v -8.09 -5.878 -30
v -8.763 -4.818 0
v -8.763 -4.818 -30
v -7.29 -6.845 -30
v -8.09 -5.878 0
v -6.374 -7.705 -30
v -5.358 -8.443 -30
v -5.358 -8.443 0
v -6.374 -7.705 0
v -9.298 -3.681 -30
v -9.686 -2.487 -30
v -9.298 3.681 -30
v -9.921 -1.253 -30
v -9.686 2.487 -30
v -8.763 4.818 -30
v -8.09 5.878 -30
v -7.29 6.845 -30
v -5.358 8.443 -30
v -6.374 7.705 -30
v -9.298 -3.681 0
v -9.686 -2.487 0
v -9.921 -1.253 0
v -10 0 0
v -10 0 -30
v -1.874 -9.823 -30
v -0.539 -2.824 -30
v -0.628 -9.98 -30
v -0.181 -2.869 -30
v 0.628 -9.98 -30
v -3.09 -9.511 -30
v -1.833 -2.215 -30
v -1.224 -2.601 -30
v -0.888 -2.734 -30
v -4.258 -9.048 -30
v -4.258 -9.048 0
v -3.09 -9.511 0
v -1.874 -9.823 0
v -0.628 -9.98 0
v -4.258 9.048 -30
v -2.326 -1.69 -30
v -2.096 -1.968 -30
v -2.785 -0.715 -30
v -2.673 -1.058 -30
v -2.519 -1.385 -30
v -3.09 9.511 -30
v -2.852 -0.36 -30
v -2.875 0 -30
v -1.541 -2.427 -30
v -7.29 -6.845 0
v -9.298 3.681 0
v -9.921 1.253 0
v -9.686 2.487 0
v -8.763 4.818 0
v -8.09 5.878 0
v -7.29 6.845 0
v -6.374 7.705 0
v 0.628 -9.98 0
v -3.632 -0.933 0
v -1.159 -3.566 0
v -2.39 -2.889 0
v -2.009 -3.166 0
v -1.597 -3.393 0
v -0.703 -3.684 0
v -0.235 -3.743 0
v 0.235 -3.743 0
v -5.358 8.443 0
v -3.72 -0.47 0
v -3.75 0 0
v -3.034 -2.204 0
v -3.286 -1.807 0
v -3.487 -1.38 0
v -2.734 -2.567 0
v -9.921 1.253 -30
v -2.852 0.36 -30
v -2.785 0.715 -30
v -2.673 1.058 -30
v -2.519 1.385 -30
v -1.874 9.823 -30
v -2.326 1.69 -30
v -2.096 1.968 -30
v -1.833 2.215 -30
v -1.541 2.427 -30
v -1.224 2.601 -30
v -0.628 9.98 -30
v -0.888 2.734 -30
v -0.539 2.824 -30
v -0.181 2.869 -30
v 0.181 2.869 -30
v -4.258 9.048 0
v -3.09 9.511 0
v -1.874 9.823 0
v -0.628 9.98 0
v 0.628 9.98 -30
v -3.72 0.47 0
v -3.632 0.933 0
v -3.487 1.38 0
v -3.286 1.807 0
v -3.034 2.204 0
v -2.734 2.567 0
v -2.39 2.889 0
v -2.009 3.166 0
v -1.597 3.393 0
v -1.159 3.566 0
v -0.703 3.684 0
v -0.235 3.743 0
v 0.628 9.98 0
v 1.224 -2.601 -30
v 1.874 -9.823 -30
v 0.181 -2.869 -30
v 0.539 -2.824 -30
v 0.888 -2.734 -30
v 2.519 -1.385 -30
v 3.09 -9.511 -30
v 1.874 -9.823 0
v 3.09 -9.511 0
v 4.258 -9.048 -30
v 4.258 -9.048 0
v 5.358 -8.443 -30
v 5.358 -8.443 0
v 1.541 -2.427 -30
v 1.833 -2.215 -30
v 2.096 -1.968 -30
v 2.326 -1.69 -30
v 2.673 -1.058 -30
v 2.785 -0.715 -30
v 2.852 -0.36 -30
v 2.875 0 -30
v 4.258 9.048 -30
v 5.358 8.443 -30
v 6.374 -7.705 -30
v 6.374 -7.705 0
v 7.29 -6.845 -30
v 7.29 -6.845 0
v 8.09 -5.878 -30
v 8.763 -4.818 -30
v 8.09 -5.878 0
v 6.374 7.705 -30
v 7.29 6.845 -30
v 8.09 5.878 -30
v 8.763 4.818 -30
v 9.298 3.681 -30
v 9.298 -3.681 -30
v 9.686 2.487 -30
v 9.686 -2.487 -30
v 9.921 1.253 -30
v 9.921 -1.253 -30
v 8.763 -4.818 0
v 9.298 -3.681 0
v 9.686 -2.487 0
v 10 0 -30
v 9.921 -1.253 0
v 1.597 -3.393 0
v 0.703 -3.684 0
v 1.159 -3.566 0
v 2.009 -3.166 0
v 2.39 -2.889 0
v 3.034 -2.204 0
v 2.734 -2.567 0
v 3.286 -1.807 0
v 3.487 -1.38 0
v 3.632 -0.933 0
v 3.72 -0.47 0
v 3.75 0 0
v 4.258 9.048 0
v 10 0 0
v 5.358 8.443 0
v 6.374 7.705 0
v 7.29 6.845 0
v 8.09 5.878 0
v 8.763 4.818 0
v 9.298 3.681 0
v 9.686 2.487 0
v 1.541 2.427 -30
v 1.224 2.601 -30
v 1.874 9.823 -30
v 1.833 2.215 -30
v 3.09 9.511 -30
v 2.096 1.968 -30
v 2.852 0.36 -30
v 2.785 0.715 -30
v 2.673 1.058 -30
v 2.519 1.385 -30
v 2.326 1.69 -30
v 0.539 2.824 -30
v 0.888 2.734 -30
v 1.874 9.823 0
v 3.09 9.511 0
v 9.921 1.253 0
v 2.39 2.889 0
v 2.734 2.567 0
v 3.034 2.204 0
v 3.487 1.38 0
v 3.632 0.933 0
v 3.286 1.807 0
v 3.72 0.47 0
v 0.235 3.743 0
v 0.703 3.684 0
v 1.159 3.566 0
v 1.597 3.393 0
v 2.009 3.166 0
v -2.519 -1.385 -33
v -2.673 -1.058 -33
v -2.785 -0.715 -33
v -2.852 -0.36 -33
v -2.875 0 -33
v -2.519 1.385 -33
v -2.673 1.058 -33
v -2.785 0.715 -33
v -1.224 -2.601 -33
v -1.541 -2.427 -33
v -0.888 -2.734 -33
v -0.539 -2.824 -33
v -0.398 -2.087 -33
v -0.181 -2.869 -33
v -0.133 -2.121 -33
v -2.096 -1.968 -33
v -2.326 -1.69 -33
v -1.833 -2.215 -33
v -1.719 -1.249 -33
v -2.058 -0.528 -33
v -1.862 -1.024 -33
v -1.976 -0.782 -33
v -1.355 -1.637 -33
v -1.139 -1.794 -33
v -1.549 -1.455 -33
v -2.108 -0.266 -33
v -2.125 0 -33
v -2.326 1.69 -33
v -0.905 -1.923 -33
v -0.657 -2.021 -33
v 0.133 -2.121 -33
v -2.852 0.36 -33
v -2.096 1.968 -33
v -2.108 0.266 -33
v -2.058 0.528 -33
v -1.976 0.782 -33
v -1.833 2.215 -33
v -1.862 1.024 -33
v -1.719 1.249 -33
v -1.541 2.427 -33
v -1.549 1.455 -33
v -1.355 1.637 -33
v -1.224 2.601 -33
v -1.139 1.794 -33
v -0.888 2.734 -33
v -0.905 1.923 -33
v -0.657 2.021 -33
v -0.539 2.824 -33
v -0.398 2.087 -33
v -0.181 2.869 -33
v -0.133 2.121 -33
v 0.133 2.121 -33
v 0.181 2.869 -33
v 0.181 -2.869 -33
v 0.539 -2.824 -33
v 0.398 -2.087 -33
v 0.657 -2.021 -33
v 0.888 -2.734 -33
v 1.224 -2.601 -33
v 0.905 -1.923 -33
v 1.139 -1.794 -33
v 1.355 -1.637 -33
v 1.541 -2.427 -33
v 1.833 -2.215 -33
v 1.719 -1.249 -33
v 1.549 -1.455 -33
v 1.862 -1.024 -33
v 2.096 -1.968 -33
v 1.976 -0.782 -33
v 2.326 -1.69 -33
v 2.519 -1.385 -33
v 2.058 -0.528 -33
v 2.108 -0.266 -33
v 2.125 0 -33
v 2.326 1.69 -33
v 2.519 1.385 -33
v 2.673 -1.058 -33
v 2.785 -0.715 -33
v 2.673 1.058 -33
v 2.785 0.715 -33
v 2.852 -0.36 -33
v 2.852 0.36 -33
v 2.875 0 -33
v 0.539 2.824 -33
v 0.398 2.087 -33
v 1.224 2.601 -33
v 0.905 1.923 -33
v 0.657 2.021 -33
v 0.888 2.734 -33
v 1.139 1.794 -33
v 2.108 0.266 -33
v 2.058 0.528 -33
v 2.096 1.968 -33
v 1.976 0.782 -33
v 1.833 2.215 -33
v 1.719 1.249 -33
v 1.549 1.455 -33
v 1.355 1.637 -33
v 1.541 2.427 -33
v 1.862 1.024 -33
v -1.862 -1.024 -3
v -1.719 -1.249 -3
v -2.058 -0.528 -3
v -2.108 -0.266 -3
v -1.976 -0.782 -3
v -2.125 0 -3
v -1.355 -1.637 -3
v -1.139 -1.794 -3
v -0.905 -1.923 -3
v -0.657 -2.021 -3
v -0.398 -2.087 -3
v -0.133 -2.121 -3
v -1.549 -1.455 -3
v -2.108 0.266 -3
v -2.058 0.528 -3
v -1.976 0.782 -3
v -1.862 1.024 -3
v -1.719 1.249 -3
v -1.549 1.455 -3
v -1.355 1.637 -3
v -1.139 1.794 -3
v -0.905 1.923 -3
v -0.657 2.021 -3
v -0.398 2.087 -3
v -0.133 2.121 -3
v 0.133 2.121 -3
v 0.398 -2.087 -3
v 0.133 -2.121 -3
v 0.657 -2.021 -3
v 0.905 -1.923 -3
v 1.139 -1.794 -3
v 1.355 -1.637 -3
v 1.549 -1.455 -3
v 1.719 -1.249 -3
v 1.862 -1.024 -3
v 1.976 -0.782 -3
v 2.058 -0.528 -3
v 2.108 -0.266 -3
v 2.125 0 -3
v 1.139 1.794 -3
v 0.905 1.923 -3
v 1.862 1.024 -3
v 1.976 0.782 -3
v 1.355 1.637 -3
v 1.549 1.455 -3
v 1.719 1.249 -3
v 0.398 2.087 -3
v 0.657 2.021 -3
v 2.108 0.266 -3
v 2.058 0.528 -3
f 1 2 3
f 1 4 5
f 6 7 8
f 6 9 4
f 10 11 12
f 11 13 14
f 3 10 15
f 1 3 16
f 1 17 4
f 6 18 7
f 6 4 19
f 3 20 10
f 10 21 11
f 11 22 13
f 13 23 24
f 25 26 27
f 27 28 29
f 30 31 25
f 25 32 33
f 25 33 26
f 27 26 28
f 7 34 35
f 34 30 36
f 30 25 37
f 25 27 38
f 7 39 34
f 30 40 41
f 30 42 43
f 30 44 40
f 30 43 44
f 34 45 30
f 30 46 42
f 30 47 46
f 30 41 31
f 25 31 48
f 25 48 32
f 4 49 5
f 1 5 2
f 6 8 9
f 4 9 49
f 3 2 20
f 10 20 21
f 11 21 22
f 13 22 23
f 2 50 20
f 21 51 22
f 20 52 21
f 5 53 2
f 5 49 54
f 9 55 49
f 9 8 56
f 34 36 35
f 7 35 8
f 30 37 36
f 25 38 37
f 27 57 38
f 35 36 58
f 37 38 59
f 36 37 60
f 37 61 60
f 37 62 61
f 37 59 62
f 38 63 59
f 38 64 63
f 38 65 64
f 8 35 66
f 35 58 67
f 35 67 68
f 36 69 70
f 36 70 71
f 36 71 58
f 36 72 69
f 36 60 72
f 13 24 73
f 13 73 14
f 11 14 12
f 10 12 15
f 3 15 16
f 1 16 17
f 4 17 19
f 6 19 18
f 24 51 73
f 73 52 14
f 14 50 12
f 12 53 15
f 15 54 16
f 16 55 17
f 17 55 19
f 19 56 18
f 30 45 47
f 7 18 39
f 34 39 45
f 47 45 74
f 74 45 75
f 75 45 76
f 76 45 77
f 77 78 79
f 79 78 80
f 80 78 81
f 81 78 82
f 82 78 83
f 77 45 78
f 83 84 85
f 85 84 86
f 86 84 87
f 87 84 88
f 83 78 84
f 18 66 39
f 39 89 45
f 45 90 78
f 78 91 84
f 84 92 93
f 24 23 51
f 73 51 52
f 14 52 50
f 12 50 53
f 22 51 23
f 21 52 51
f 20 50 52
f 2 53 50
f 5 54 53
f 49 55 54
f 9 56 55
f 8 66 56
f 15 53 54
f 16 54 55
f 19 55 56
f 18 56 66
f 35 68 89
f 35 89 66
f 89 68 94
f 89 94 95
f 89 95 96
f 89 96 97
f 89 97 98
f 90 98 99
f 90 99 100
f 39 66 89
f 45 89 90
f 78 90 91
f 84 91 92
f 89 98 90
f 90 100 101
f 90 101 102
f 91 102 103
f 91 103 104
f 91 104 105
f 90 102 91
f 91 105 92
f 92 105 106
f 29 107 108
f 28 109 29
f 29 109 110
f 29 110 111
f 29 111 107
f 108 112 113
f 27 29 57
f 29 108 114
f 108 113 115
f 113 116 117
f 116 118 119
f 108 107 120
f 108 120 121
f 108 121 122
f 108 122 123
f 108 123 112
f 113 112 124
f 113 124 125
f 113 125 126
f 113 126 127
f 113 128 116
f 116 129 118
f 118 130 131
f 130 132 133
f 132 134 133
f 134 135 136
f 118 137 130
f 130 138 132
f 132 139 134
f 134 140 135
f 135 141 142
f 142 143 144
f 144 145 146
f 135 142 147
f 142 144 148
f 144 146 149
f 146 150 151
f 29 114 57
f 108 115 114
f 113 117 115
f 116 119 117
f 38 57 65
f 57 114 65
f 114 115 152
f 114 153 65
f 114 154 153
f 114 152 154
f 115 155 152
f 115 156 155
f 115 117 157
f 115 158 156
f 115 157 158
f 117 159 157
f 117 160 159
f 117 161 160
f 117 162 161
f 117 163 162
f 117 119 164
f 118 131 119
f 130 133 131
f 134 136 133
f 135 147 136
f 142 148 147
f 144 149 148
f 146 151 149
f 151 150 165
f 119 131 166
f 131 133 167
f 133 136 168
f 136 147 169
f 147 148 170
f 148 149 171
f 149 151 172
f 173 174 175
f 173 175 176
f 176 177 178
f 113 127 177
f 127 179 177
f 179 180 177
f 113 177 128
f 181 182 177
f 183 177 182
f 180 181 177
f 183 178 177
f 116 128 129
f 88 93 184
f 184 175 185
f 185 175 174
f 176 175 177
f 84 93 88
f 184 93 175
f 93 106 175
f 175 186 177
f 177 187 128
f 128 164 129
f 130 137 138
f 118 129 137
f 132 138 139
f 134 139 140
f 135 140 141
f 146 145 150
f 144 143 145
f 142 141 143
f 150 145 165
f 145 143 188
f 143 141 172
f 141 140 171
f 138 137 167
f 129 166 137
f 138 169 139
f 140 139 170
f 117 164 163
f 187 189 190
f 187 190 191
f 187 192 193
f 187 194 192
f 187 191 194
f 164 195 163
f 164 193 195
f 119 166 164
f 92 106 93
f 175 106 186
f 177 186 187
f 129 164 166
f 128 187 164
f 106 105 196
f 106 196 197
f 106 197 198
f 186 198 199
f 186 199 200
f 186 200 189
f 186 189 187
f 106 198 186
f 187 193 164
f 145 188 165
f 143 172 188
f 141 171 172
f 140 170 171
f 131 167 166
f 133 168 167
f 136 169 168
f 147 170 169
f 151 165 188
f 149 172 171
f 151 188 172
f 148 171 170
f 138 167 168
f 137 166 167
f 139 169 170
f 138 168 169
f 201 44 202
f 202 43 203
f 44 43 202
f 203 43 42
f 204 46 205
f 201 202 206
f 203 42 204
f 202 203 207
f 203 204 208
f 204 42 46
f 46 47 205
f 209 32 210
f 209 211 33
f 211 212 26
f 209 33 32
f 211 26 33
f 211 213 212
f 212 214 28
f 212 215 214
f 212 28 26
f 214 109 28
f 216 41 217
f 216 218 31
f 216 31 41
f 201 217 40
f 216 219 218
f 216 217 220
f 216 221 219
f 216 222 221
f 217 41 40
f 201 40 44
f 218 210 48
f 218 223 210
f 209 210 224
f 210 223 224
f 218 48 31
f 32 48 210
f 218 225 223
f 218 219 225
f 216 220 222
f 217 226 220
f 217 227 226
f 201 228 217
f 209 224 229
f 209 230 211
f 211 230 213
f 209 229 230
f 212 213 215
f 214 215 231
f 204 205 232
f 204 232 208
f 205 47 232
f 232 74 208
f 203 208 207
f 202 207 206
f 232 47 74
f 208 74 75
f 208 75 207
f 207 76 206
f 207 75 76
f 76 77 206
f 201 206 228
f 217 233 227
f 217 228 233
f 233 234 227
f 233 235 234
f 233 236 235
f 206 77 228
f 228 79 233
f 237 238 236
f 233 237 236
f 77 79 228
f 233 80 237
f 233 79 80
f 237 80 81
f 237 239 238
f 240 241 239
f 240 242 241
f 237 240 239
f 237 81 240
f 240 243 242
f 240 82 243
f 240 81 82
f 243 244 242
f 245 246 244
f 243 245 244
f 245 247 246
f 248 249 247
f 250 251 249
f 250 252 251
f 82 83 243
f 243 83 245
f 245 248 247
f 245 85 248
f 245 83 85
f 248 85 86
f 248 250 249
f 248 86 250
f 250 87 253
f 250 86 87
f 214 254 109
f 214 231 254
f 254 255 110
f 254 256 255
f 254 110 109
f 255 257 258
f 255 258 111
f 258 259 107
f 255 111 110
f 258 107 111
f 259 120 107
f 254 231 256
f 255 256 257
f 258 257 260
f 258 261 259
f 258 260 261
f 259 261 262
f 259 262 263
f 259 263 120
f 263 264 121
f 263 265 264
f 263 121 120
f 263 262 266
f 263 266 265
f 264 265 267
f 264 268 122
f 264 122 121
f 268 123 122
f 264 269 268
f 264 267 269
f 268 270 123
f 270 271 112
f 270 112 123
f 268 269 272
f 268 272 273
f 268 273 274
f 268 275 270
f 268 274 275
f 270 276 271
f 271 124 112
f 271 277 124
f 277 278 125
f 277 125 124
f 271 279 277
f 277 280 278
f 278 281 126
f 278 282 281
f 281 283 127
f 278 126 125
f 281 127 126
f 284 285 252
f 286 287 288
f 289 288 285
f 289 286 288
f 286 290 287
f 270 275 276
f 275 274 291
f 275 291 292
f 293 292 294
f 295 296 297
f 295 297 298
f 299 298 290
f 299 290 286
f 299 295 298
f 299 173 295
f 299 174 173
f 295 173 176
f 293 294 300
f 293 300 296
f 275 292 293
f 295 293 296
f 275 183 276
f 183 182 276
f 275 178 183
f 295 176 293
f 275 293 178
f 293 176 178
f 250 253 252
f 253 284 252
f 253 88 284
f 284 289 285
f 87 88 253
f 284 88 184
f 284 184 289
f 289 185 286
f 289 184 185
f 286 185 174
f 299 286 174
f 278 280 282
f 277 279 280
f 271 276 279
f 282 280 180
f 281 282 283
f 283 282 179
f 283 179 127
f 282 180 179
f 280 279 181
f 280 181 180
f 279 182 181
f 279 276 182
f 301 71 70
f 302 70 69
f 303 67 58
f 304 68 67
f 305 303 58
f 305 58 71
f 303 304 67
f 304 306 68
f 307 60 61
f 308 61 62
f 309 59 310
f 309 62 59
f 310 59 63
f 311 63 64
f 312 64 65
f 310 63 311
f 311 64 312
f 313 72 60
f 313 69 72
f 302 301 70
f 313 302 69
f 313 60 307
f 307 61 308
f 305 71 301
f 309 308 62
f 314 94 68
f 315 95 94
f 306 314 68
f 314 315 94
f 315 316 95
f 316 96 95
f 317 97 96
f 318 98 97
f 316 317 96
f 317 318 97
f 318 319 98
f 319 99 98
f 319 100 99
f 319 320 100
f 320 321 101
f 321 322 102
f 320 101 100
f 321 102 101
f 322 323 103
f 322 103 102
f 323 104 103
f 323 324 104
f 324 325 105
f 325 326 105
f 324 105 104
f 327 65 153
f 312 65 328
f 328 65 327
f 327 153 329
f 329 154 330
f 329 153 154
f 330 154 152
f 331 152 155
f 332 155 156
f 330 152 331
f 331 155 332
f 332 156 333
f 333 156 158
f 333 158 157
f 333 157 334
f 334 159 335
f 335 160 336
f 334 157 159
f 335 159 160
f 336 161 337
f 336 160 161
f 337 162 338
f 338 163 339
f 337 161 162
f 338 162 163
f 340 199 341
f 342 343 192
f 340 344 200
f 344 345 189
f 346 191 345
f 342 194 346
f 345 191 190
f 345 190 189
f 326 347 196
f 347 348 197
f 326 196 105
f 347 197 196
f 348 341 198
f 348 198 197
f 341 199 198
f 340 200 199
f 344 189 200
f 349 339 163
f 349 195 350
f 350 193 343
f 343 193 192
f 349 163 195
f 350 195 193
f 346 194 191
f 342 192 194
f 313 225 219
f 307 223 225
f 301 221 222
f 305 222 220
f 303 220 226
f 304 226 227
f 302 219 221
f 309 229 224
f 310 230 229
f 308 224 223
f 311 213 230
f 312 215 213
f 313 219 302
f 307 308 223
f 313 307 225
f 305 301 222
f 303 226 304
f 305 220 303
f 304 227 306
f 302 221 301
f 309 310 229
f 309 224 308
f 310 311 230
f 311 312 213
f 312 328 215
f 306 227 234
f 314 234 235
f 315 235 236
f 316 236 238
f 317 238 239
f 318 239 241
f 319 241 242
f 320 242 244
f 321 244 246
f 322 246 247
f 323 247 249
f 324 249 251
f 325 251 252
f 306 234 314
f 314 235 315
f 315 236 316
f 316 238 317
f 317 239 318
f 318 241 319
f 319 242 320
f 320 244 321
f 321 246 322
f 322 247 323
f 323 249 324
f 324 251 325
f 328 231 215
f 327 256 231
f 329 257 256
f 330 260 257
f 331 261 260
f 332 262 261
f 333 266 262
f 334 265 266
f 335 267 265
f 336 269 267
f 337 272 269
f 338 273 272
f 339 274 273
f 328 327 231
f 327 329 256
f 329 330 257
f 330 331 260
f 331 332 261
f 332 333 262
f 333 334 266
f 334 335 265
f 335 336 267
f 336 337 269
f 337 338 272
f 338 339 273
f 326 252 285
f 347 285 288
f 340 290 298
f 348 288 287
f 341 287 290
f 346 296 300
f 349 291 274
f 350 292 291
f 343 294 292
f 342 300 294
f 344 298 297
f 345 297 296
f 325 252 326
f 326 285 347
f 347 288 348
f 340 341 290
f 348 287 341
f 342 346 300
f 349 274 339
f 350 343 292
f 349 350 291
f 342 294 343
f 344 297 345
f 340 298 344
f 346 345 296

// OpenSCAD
$fn = 50;

difference() {
	union() {
		translate(v = [0, 0, -30.0]) {
			cylinder(h = 30, r = 10.0);
		}
		#translate(v = [0, 0, -33.0]) {
			cylinder(h = 33, r = 2.875);
		}
	}
	union() {
		translate(v = [0, 0, 0]) {
			rotate(a = [0, 0, 0]) {
				difference() {
					union() {
						translate(v = [0, 0, -33.0]) {
							cylinder(h = 33, r = 2.0);
						}
						translate(v = [0, 0, -3]) {
							cylinder(h = 3, r1 = 2.125, r2 = 3.75);
						}
						translate(v = [0, 0, -33.0]) {
							cylinder(h = 33, r = 2.125);
						}
						translate(v = [0, 0, -33.0]) {
							cylinder(h = 33, r = 2.0);
						}
					}
					union();
				}
			}
		}
	}
}
